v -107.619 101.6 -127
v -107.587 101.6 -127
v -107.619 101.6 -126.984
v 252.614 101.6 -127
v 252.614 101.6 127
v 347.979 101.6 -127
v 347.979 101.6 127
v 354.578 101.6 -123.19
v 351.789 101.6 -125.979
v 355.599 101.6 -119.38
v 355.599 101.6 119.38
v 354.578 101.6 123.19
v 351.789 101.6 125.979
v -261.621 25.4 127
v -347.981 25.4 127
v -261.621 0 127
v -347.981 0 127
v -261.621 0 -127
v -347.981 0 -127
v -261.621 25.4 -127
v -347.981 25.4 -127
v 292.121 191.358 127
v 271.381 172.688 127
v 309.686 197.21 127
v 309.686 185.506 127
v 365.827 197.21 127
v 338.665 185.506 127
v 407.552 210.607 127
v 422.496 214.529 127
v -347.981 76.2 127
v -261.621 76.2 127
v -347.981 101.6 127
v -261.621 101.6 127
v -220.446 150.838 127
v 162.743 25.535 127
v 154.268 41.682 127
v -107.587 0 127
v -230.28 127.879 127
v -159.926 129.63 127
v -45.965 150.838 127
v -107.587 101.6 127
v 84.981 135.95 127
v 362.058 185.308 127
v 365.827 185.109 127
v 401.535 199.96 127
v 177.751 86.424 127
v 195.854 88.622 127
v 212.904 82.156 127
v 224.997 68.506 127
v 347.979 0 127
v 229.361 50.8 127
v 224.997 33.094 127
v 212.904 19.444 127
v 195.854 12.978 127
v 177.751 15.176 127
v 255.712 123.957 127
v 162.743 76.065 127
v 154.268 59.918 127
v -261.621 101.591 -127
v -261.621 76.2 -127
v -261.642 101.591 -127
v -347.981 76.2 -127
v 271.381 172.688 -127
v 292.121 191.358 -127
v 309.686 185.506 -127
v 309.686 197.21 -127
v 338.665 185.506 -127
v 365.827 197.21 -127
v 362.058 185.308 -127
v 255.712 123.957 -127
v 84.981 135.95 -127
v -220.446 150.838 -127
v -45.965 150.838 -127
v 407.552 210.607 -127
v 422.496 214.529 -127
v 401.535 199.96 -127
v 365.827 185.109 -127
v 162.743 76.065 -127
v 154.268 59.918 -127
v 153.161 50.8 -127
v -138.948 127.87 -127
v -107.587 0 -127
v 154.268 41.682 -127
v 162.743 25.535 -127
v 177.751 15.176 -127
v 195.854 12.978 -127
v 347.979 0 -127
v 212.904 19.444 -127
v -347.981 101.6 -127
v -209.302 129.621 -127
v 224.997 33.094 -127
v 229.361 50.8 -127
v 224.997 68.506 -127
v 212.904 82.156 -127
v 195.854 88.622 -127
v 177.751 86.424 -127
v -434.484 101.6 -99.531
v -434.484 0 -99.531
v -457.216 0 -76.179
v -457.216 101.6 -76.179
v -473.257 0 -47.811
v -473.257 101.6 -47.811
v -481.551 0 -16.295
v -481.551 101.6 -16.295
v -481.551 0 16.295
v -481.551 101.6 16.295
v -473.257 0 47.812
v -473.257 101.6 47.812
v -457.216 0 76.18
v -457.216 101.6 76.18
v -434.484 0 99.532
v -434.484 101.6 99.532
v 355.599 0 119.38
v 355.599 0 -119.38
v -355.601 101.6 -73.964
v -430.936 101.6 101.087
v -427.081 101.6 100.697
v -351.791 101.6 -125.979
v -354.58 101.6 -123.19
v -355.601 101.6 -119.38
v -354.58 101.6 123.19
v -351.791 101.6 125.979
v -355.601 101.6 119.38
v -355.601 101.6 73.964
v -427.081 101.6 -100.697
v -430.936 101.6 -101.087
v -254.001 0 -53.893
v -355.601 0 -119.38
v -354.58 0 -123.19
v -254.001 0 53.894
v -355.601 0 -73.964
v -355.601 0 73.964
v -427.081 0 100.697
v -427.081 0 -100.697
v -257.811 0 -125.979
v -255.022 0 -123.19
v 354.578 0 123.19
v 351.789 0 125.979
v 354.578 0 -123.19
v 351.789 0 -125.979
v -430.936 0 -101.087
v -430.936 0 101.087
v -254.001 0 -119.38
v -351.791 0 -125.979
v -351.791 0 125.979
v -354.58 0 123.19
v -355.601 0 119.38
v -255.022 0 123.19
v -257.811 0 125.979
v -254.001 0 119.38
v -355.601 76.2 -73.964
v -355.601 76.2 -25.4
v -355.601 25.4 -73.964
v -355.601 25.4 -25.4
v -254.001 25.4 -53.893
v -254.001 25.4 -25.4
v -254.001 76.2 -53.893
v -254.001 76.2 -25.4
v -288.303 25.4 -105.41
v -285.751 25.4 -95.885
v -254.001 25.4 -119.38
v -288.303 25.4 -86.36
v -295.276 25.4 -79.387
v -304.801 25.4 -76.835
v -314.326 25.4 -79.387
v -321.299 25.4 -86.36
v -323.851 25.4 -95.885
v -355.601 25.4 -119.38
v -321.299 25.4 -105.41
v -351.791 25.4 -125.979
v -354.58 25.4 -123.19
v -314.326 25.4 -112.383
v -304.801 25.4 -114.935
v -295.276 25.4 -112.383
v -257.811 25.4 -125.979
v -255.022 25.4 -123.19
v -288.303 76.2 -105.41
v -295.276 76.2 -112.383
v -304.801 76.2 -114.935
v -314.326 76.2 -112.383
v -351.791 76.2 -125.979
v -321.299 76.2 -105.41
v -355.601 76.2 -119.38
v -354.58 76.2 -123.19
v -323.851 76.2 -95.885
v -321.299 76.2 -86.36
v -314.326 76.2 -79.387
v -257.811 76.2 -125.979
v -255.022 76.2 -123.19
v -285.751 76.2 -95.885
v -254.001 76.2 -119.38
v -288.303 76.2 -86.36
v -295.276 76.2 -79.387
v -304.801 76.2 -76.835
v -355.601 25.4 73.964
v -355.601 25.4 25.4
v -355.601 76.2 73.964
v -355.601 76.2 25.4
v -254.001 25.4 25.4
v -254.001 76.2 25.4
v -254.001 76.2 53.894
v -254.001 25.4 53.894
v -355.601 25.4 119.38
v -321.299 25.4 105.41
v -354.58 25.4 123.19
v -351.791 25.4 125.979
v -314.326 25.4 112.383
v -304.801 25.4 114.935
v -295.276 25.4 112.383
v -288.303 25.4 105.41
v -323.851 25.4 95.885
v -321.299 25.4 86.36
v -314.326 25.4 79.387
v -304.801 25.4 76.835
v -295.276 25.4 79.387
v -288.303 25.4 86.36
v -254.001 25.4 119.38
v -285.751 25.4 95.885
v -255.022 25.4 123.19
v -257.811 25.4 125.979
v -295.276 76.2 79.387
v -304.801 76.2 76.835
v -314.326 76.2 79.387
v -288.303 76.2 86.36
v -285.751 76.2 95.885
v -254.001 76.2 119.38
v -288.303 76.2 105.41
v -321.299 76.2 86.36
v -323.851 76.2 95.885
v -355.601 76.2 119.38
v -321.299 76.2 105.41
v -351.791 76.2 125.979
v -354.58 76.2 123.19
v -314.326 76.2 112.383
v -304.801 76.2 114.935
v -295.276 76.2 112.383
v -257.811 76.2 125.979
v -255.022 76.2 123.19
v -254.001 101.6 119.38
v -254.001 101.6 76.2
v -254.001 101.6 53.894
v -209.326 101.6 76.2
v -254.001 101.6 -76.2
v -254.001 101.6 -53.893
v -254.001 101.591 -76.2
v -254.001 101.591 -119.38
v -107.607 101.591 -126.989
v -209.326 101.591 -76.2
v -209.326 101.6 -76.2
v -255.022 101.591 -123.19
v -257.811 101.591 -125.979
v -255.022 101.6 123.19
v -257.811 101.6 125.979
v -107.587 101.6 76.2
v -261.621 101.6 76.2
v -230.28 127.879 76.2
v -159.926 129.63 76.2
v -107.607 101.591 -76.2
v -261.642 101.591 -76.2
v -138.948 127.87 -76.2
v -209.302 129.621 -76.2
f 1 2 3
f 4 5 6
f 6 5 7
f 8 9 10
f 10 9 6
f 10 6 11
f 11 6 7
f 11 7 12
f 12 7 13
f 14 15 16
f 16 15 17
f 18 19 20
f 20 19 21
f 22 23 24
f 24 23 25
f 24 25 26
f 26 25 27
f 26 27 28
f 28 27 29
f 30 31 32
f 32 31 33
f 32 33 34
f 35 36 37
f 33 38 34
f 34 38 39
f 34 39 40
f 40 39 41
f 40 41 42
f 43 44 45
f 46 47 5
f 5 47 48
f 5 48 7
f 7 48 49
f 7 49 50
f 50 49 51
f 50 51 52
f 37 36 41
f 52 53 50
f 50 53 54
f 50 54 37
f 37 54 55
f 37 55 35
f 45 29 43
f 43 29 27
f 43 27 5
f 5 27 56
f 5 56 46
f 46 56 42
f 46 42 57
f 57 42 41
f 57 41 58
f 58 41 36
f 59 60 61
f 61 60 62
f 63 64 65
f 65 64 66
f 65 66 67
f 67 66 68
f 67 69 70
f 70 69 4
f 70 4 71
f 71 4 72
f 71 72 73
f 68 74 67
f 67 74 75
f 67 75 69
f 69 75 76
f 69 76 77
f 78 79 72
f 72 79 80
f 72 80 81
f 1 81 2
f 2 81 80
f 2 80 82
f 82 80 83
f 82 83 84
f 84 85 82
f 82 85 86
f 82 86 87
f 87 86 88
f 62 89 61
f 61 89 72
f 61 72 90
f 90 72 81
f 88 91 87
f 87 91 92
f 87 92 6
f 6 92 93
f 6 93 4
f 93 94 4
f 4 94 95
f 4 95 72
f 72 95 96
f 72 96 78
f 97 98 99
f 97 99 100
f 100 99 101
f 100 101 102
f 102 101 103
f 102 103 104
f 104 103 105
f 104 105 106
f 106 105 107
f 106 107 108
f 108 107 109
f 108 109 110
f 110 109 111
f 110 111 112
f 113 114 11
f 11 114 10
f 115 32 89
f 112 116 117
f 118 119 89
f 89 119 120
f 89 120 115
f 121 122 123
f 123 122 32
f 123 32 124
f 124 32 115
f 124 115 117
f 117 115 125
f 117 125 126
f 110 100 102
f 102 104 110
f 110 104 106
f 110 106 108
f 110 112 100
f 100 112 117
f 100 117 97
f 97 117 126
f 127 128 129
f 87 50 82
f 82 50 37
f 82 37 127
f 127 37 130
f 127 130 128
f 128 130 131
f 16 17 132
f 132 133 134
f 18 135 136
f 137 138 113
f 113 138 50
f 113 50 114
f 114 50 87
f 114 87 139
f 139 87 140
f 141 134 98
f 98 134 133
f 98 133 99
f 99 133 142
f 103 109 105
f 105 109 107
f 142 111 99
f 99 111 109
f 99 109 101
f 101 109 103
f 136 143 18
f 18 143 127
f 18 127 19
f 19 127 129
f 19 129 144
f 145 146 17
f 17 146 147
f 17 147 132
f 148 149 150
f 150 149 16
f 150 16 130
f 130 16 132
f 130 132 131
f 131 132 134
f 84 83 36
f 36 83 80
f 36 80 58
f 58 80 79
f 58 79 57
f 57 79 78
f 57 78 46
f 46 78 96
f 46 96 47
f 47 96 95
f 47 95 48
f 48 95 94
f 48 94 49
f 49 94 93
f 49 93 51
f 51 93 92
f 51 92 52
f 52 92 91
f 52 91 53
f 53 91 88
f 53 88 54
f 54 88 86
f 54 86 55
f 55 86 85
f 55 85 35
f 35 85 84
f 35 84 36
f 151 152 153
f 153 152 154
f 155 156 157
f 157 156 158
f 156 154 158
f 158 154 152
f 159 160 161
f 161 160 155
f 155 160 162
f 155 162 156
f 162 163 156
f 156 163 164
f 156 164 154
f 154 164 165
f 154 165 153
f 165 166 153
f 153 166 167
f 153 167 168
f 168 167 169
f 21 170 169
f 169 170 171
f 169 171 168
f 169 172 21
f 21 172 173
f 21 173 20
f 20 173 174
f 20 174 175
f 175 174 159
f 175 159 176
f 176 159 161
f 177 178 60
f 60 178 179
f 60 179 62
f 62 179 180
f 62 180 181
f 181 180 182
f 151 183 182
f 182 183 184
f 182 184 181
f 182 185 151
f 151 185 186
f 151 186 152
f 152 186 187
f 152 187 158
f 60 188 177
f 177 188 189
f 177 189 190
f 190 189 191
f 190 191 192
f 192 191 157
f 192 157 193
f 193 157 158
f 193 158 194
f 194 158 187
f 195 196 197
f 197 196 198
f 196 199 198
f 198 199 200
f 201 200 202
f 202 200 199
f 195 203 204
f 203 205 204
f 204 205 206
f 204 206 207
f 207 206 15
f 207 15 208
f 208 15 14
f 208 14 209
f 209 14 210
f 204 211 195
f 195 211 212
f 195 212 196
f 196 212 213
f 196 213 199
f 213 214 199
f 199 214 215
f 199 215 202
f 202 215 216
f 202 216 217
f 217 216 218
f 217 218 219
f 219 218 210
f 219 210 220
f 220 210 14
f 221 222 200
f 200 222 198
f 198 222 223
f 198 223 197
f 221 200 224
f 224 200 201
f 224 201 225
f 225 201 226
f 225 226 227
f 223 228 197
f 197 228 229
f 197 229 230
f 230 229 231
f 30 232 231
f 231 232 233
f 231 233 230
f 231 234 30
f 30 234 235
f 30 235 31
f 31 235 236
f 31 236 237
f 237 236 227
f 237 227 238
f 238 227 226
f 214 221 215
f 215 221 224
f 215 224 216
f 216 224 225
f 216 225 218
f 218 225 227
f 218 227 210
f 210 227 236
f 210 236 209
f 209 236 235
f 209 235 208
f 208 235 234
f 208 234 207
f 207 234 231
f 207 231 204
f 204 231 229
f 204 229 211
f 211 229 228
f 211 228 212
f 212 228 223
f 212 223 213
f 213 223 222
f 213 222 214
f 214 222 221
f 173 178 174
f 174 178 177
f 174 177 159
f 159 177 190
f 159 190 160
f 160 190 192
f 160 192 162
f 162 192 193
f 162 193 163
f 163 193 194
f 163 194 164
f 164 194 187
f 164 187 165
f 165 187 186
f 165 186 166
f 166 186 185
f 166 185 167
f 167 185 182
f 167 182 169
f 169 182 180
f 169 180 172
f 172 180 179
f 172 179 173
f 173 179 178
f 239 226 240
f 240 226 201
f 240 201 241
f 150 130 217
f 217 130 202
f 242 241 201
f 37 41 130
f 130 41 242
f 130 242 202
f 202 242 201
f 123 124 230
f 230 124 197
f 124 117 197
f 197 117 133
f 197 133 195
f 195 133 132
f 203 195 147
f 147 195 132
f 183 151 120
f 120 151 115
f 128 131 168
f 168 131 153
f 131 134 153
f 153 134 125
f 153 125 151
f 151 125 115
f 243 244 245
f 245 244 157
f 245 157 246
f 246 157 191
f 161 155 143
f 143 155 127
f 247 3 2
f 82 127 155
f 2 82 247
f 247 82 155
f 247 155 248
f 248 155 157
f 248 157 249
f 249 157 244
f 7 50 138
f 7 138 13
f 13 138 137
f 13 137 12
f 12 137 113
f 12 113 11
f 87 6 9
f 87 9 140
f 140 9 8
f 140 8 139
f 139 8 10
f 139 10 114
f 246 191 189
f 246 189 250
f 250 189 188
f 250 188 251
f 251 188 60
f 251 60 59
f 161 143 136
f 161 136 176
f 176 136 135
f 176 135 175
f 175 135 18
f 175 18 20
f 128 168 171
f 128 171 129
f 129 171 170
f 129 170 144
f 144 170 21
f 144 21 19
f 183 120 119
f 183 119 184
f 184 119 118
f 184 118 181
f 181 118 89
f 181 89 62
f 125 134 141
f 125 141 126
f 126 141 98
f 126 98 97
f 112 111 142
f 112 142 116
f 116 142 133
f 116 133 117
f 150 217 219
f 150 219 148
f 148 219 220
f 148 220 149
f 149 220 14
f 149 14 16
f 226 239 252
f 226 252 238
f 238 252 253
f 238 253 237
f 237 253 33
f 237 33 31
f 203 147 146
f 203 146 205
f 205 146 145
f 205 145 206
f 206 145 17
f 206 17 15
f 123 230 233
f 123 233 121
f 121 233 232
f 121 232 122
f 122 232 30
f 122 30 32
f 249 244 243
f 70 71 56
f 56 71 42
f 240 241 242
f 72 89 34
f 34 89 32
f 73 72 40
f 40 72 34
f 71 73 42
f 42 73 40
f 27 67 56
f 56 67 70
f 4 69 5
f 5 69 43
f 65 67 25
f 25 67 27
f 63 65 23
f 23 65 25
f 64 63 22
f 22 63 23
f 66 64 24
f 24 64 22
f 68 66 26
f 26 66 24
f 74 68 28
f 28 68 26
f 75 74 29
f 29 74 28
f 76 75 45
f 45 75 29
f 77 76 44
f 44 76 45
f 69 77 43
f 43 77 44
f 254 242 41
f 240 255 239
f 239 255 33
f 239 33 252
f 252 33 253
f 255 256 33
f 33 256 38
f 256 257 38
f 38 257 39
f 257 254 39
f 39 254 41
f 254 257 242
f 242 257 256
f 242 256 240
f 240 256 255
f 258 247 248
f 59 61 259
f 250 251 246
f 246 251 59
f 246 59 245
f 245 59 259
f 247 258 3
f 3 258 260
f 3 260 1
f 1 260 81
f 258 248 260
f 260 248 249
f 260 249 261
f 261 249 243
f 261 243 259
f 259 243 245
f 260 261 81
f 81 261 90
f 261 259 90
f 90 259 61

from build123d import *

# Parameters (mm, degrees)
BOSS_EXTRUDE3_DEPTH = 101.6
SKETCH4_R           = 38.1
CUT_EXTRUDE1_DEPTH  = 508
CUT_EXTRUDE2_START  = -25.4
SKETCH16_W          = 101.6
SKETCH16_H          = 101.6
CUT_EXTRUDE2_DEPTH  = 50.8
SKETCH18_R          = 19.05
BOSS_EXTRUDE4_DEPTH = 50.8
CUT_EXTRUDE6_START  = -101.6
CUT_EXTRUDE6_DEPTH  = 101.6
FILLET2_R           = 7.62
BOSS_EXTRUDE7_DEPTH = 254
BOSS_EXTRUDE9_DEPTH = 254
CUT_EXTRUDE11_DEPTH = 50.8
CUT_EXTRUDE12_DEPTH = 50.8


with BuildPart() as part:
    # Sketch1 → Boss-Extrude3 (new body)
    with BuildSketch(Plane(origin=(0, 0, 0), x_dir=(1, 0, 0), z_dir=(0, 1, 0))):
        with BuildLine():
            ThreePointArc((-355.6, 127), (-482.6, 0), (-355.6, -127))
            Line((-355.6, -127), (355.6, -127))
            Line((355.6, -127), (355.6, 127))
            Line((355.6, 127), (-355.6, 127))
        make_face()
    extrude(amount=BOSS_EXTRUDE3_DEPTH)

    # Sketch4 → Cut-Extrude1 (cut)
    with BuildSketch(Plane.XY.offset(127)):
        with Locations((191.262, 50.8)):
            Circle(SKETCH4_R)
    extrude(amount=-CUT_EXTRUDE1_DEPTH, mode=Mode.SUBTRACT)

    # Sketch16 → Cut-Extrude2 (cut)
    with BuildSketch(Plane(origin=(0, 101.6, 0), x_dir=(1, 0, 0), z_dir=(0, 1, 0)).offset(CUT_EXTRUDE2_START)):
        with Locations((-304.8, 76.2)):
            Rectangle(SKETCH16_W, SKETCH16_H)
        with Locations((-304.8, -76.2)):
            Rectangle(SKETCH16_W, SKETCH16_H)
    extrude(amount=-CUT_EXTRUDE2_DEPTH, mode=Mode.SUBTRACT)

    # Sketch18 → Boss-Extrude4 (add)
    with BuildSketch(Plane(origin=(0, 25.4, 0), x_dir=(1, 0, 0), z_dir=(0, 1, 0))):
        with Locations(Location((-304.8, -95.885, 0), (0, 0, 270))):
            Circle(SKETCH18_R)
        with Locations(Location((-304.8, 95.885, 0), (0, 0, 90))):
            Circle(SKETCH18_R)
    extrude(amount=BOSS_EXTRUDE4_DEPTH)

    # Sketch23 → Cut-Extrude6 (cut)
    with BuildSketch(Plane(origin=(0, 101.6, 0), x_dir=(1, 0, 0), z_dir=(0, 1, 0)).offset(CUT_EXTRUDE6_START)):
        with BuildLine():
            Line((-355.6, -127), (-355.6, -73.963969071))
            Line((-355.6, -73.963969071), (-431.029237977, -102.173529146))
            ThreePointArc((-431.029237977, -102.173529146), (-395.304922859, -120.633822375), (-355.6, -127))
        make_face()
        Polygon((-254, -53.893344298), (-254, -127), (-107.585974166, -127), align=None)
        with BuildLine():
            Line((-355.6, 73.963969071), (-431.029237977, 102.173529146))
            ThreePointArc((-431.029237977, 102.173529146), (-395.304922859, 120.633822375), (-355.6, 127))
            Line((-355.6, 127), (-355.6, 73.963969071))
        make_face()
        Polygon((-254, 127), (-107.585974166, 127), (-254, 53.893344298), align=None)
    extrude(amount=CUT_EXTRUDE6_DEPTH, mode=Mode.SUBTRACT)

    # Fillet2
    fillet2_edges = [part.edges().sort_by_distance(p)[0] for p in [
        (-431.029237977, 50.8, -102.173529146),
        (-355.6, 12.7, -127),
        (-355.6, 12.7, 127),
        (-254, 12.7, -127),
        (-254, 88.9, -127),
        (-431.029237977, 50.8, 102.173529146),
        (-254, 88.9, 127),
        (-355.6, 88.9, -127),
        (-254, 12.7, 127),
        (355.6, 50.8, -127),
        (355.6, 50.8, 127),
        (-355.6, 88.9, 127),
    ]]
    fillet(fillet2_edges, radius=FILLET2_R)



with BuildPart() as body_2:
    # Sketch24 → Boss-Extrude7 (new body)
    with BuildSketch(Plane.XY.offset(127)):
        Polygon((362.058648087, 185.307634776), (252.61496451, 101.6), (225.581006965, 101.6), (338.66530168, 185.506014364), (334.087126159, 185.506014364), (309.686436817, 185.506014364), (271.381724032, 172.688112617), (292.121811526, 191.358212215), (309.686436817, 197.210410065), (365.827860262, 197.210410065), (407.553014944, 210.606867151), (422.496366485, 214.52949693), (401.536186127, 199.959729178), (365.827860262, 185.109255188), align=None)
    extrude(amount=-BOSS_EXTRUDE7_DEPTH)


with BuildPart() as part_1:
    add(part.part)

    add(body_2.part)  # Boss-Extrude9 merges body 2
    # Sketch24<8> → Boss-Extrude9 (add)
    with BuildSketch(Plane.XY.offset(127)):
        Polygon((-347.98, 101.6), (225.581006965, 101.6), (255.712540846, 123.956923399), (84.982041767, 135.949988054), (-45.964353963, 150.837955987), (-109.054165893, 150.837955987), (-220.445592276, 150.837955987), align=None)
    extrude(amount=-BOSS_EXTRUDE9_DEPTH)

    # Sketch26 → Cut-Extrude11 (cut)
    with BuildSketch(Plane.XY.offset(127)):
        Polygon((-261.62, 101.6), (-230.279041818, 127.879160506), (-159.925021307, 129.63026439), (-107.585974166, 101.6), align=None)
    extrude(amount=-CUT_EXTRUDE11_DEPTH, mode=Mode.SUBTRACT)

    # Sketch27 → Cut-Extrude12 (cut)
    with BuildSketch(Plane(origin=(0, 0, -127), x_dir=(-1, 0, 0), z_dir=(0, 0, -1))):
        Polygon((107.606718178, 101.590603269), (138.94767636, 127.869763774), (209.301696871, 129.620867658), (261.640744012, 101.590603269), align=None)
    extrude(amount=-CUT_EXTRUDE12_DEPTH, mode=Mode.SUBTRACT)


solid = part_1.part
